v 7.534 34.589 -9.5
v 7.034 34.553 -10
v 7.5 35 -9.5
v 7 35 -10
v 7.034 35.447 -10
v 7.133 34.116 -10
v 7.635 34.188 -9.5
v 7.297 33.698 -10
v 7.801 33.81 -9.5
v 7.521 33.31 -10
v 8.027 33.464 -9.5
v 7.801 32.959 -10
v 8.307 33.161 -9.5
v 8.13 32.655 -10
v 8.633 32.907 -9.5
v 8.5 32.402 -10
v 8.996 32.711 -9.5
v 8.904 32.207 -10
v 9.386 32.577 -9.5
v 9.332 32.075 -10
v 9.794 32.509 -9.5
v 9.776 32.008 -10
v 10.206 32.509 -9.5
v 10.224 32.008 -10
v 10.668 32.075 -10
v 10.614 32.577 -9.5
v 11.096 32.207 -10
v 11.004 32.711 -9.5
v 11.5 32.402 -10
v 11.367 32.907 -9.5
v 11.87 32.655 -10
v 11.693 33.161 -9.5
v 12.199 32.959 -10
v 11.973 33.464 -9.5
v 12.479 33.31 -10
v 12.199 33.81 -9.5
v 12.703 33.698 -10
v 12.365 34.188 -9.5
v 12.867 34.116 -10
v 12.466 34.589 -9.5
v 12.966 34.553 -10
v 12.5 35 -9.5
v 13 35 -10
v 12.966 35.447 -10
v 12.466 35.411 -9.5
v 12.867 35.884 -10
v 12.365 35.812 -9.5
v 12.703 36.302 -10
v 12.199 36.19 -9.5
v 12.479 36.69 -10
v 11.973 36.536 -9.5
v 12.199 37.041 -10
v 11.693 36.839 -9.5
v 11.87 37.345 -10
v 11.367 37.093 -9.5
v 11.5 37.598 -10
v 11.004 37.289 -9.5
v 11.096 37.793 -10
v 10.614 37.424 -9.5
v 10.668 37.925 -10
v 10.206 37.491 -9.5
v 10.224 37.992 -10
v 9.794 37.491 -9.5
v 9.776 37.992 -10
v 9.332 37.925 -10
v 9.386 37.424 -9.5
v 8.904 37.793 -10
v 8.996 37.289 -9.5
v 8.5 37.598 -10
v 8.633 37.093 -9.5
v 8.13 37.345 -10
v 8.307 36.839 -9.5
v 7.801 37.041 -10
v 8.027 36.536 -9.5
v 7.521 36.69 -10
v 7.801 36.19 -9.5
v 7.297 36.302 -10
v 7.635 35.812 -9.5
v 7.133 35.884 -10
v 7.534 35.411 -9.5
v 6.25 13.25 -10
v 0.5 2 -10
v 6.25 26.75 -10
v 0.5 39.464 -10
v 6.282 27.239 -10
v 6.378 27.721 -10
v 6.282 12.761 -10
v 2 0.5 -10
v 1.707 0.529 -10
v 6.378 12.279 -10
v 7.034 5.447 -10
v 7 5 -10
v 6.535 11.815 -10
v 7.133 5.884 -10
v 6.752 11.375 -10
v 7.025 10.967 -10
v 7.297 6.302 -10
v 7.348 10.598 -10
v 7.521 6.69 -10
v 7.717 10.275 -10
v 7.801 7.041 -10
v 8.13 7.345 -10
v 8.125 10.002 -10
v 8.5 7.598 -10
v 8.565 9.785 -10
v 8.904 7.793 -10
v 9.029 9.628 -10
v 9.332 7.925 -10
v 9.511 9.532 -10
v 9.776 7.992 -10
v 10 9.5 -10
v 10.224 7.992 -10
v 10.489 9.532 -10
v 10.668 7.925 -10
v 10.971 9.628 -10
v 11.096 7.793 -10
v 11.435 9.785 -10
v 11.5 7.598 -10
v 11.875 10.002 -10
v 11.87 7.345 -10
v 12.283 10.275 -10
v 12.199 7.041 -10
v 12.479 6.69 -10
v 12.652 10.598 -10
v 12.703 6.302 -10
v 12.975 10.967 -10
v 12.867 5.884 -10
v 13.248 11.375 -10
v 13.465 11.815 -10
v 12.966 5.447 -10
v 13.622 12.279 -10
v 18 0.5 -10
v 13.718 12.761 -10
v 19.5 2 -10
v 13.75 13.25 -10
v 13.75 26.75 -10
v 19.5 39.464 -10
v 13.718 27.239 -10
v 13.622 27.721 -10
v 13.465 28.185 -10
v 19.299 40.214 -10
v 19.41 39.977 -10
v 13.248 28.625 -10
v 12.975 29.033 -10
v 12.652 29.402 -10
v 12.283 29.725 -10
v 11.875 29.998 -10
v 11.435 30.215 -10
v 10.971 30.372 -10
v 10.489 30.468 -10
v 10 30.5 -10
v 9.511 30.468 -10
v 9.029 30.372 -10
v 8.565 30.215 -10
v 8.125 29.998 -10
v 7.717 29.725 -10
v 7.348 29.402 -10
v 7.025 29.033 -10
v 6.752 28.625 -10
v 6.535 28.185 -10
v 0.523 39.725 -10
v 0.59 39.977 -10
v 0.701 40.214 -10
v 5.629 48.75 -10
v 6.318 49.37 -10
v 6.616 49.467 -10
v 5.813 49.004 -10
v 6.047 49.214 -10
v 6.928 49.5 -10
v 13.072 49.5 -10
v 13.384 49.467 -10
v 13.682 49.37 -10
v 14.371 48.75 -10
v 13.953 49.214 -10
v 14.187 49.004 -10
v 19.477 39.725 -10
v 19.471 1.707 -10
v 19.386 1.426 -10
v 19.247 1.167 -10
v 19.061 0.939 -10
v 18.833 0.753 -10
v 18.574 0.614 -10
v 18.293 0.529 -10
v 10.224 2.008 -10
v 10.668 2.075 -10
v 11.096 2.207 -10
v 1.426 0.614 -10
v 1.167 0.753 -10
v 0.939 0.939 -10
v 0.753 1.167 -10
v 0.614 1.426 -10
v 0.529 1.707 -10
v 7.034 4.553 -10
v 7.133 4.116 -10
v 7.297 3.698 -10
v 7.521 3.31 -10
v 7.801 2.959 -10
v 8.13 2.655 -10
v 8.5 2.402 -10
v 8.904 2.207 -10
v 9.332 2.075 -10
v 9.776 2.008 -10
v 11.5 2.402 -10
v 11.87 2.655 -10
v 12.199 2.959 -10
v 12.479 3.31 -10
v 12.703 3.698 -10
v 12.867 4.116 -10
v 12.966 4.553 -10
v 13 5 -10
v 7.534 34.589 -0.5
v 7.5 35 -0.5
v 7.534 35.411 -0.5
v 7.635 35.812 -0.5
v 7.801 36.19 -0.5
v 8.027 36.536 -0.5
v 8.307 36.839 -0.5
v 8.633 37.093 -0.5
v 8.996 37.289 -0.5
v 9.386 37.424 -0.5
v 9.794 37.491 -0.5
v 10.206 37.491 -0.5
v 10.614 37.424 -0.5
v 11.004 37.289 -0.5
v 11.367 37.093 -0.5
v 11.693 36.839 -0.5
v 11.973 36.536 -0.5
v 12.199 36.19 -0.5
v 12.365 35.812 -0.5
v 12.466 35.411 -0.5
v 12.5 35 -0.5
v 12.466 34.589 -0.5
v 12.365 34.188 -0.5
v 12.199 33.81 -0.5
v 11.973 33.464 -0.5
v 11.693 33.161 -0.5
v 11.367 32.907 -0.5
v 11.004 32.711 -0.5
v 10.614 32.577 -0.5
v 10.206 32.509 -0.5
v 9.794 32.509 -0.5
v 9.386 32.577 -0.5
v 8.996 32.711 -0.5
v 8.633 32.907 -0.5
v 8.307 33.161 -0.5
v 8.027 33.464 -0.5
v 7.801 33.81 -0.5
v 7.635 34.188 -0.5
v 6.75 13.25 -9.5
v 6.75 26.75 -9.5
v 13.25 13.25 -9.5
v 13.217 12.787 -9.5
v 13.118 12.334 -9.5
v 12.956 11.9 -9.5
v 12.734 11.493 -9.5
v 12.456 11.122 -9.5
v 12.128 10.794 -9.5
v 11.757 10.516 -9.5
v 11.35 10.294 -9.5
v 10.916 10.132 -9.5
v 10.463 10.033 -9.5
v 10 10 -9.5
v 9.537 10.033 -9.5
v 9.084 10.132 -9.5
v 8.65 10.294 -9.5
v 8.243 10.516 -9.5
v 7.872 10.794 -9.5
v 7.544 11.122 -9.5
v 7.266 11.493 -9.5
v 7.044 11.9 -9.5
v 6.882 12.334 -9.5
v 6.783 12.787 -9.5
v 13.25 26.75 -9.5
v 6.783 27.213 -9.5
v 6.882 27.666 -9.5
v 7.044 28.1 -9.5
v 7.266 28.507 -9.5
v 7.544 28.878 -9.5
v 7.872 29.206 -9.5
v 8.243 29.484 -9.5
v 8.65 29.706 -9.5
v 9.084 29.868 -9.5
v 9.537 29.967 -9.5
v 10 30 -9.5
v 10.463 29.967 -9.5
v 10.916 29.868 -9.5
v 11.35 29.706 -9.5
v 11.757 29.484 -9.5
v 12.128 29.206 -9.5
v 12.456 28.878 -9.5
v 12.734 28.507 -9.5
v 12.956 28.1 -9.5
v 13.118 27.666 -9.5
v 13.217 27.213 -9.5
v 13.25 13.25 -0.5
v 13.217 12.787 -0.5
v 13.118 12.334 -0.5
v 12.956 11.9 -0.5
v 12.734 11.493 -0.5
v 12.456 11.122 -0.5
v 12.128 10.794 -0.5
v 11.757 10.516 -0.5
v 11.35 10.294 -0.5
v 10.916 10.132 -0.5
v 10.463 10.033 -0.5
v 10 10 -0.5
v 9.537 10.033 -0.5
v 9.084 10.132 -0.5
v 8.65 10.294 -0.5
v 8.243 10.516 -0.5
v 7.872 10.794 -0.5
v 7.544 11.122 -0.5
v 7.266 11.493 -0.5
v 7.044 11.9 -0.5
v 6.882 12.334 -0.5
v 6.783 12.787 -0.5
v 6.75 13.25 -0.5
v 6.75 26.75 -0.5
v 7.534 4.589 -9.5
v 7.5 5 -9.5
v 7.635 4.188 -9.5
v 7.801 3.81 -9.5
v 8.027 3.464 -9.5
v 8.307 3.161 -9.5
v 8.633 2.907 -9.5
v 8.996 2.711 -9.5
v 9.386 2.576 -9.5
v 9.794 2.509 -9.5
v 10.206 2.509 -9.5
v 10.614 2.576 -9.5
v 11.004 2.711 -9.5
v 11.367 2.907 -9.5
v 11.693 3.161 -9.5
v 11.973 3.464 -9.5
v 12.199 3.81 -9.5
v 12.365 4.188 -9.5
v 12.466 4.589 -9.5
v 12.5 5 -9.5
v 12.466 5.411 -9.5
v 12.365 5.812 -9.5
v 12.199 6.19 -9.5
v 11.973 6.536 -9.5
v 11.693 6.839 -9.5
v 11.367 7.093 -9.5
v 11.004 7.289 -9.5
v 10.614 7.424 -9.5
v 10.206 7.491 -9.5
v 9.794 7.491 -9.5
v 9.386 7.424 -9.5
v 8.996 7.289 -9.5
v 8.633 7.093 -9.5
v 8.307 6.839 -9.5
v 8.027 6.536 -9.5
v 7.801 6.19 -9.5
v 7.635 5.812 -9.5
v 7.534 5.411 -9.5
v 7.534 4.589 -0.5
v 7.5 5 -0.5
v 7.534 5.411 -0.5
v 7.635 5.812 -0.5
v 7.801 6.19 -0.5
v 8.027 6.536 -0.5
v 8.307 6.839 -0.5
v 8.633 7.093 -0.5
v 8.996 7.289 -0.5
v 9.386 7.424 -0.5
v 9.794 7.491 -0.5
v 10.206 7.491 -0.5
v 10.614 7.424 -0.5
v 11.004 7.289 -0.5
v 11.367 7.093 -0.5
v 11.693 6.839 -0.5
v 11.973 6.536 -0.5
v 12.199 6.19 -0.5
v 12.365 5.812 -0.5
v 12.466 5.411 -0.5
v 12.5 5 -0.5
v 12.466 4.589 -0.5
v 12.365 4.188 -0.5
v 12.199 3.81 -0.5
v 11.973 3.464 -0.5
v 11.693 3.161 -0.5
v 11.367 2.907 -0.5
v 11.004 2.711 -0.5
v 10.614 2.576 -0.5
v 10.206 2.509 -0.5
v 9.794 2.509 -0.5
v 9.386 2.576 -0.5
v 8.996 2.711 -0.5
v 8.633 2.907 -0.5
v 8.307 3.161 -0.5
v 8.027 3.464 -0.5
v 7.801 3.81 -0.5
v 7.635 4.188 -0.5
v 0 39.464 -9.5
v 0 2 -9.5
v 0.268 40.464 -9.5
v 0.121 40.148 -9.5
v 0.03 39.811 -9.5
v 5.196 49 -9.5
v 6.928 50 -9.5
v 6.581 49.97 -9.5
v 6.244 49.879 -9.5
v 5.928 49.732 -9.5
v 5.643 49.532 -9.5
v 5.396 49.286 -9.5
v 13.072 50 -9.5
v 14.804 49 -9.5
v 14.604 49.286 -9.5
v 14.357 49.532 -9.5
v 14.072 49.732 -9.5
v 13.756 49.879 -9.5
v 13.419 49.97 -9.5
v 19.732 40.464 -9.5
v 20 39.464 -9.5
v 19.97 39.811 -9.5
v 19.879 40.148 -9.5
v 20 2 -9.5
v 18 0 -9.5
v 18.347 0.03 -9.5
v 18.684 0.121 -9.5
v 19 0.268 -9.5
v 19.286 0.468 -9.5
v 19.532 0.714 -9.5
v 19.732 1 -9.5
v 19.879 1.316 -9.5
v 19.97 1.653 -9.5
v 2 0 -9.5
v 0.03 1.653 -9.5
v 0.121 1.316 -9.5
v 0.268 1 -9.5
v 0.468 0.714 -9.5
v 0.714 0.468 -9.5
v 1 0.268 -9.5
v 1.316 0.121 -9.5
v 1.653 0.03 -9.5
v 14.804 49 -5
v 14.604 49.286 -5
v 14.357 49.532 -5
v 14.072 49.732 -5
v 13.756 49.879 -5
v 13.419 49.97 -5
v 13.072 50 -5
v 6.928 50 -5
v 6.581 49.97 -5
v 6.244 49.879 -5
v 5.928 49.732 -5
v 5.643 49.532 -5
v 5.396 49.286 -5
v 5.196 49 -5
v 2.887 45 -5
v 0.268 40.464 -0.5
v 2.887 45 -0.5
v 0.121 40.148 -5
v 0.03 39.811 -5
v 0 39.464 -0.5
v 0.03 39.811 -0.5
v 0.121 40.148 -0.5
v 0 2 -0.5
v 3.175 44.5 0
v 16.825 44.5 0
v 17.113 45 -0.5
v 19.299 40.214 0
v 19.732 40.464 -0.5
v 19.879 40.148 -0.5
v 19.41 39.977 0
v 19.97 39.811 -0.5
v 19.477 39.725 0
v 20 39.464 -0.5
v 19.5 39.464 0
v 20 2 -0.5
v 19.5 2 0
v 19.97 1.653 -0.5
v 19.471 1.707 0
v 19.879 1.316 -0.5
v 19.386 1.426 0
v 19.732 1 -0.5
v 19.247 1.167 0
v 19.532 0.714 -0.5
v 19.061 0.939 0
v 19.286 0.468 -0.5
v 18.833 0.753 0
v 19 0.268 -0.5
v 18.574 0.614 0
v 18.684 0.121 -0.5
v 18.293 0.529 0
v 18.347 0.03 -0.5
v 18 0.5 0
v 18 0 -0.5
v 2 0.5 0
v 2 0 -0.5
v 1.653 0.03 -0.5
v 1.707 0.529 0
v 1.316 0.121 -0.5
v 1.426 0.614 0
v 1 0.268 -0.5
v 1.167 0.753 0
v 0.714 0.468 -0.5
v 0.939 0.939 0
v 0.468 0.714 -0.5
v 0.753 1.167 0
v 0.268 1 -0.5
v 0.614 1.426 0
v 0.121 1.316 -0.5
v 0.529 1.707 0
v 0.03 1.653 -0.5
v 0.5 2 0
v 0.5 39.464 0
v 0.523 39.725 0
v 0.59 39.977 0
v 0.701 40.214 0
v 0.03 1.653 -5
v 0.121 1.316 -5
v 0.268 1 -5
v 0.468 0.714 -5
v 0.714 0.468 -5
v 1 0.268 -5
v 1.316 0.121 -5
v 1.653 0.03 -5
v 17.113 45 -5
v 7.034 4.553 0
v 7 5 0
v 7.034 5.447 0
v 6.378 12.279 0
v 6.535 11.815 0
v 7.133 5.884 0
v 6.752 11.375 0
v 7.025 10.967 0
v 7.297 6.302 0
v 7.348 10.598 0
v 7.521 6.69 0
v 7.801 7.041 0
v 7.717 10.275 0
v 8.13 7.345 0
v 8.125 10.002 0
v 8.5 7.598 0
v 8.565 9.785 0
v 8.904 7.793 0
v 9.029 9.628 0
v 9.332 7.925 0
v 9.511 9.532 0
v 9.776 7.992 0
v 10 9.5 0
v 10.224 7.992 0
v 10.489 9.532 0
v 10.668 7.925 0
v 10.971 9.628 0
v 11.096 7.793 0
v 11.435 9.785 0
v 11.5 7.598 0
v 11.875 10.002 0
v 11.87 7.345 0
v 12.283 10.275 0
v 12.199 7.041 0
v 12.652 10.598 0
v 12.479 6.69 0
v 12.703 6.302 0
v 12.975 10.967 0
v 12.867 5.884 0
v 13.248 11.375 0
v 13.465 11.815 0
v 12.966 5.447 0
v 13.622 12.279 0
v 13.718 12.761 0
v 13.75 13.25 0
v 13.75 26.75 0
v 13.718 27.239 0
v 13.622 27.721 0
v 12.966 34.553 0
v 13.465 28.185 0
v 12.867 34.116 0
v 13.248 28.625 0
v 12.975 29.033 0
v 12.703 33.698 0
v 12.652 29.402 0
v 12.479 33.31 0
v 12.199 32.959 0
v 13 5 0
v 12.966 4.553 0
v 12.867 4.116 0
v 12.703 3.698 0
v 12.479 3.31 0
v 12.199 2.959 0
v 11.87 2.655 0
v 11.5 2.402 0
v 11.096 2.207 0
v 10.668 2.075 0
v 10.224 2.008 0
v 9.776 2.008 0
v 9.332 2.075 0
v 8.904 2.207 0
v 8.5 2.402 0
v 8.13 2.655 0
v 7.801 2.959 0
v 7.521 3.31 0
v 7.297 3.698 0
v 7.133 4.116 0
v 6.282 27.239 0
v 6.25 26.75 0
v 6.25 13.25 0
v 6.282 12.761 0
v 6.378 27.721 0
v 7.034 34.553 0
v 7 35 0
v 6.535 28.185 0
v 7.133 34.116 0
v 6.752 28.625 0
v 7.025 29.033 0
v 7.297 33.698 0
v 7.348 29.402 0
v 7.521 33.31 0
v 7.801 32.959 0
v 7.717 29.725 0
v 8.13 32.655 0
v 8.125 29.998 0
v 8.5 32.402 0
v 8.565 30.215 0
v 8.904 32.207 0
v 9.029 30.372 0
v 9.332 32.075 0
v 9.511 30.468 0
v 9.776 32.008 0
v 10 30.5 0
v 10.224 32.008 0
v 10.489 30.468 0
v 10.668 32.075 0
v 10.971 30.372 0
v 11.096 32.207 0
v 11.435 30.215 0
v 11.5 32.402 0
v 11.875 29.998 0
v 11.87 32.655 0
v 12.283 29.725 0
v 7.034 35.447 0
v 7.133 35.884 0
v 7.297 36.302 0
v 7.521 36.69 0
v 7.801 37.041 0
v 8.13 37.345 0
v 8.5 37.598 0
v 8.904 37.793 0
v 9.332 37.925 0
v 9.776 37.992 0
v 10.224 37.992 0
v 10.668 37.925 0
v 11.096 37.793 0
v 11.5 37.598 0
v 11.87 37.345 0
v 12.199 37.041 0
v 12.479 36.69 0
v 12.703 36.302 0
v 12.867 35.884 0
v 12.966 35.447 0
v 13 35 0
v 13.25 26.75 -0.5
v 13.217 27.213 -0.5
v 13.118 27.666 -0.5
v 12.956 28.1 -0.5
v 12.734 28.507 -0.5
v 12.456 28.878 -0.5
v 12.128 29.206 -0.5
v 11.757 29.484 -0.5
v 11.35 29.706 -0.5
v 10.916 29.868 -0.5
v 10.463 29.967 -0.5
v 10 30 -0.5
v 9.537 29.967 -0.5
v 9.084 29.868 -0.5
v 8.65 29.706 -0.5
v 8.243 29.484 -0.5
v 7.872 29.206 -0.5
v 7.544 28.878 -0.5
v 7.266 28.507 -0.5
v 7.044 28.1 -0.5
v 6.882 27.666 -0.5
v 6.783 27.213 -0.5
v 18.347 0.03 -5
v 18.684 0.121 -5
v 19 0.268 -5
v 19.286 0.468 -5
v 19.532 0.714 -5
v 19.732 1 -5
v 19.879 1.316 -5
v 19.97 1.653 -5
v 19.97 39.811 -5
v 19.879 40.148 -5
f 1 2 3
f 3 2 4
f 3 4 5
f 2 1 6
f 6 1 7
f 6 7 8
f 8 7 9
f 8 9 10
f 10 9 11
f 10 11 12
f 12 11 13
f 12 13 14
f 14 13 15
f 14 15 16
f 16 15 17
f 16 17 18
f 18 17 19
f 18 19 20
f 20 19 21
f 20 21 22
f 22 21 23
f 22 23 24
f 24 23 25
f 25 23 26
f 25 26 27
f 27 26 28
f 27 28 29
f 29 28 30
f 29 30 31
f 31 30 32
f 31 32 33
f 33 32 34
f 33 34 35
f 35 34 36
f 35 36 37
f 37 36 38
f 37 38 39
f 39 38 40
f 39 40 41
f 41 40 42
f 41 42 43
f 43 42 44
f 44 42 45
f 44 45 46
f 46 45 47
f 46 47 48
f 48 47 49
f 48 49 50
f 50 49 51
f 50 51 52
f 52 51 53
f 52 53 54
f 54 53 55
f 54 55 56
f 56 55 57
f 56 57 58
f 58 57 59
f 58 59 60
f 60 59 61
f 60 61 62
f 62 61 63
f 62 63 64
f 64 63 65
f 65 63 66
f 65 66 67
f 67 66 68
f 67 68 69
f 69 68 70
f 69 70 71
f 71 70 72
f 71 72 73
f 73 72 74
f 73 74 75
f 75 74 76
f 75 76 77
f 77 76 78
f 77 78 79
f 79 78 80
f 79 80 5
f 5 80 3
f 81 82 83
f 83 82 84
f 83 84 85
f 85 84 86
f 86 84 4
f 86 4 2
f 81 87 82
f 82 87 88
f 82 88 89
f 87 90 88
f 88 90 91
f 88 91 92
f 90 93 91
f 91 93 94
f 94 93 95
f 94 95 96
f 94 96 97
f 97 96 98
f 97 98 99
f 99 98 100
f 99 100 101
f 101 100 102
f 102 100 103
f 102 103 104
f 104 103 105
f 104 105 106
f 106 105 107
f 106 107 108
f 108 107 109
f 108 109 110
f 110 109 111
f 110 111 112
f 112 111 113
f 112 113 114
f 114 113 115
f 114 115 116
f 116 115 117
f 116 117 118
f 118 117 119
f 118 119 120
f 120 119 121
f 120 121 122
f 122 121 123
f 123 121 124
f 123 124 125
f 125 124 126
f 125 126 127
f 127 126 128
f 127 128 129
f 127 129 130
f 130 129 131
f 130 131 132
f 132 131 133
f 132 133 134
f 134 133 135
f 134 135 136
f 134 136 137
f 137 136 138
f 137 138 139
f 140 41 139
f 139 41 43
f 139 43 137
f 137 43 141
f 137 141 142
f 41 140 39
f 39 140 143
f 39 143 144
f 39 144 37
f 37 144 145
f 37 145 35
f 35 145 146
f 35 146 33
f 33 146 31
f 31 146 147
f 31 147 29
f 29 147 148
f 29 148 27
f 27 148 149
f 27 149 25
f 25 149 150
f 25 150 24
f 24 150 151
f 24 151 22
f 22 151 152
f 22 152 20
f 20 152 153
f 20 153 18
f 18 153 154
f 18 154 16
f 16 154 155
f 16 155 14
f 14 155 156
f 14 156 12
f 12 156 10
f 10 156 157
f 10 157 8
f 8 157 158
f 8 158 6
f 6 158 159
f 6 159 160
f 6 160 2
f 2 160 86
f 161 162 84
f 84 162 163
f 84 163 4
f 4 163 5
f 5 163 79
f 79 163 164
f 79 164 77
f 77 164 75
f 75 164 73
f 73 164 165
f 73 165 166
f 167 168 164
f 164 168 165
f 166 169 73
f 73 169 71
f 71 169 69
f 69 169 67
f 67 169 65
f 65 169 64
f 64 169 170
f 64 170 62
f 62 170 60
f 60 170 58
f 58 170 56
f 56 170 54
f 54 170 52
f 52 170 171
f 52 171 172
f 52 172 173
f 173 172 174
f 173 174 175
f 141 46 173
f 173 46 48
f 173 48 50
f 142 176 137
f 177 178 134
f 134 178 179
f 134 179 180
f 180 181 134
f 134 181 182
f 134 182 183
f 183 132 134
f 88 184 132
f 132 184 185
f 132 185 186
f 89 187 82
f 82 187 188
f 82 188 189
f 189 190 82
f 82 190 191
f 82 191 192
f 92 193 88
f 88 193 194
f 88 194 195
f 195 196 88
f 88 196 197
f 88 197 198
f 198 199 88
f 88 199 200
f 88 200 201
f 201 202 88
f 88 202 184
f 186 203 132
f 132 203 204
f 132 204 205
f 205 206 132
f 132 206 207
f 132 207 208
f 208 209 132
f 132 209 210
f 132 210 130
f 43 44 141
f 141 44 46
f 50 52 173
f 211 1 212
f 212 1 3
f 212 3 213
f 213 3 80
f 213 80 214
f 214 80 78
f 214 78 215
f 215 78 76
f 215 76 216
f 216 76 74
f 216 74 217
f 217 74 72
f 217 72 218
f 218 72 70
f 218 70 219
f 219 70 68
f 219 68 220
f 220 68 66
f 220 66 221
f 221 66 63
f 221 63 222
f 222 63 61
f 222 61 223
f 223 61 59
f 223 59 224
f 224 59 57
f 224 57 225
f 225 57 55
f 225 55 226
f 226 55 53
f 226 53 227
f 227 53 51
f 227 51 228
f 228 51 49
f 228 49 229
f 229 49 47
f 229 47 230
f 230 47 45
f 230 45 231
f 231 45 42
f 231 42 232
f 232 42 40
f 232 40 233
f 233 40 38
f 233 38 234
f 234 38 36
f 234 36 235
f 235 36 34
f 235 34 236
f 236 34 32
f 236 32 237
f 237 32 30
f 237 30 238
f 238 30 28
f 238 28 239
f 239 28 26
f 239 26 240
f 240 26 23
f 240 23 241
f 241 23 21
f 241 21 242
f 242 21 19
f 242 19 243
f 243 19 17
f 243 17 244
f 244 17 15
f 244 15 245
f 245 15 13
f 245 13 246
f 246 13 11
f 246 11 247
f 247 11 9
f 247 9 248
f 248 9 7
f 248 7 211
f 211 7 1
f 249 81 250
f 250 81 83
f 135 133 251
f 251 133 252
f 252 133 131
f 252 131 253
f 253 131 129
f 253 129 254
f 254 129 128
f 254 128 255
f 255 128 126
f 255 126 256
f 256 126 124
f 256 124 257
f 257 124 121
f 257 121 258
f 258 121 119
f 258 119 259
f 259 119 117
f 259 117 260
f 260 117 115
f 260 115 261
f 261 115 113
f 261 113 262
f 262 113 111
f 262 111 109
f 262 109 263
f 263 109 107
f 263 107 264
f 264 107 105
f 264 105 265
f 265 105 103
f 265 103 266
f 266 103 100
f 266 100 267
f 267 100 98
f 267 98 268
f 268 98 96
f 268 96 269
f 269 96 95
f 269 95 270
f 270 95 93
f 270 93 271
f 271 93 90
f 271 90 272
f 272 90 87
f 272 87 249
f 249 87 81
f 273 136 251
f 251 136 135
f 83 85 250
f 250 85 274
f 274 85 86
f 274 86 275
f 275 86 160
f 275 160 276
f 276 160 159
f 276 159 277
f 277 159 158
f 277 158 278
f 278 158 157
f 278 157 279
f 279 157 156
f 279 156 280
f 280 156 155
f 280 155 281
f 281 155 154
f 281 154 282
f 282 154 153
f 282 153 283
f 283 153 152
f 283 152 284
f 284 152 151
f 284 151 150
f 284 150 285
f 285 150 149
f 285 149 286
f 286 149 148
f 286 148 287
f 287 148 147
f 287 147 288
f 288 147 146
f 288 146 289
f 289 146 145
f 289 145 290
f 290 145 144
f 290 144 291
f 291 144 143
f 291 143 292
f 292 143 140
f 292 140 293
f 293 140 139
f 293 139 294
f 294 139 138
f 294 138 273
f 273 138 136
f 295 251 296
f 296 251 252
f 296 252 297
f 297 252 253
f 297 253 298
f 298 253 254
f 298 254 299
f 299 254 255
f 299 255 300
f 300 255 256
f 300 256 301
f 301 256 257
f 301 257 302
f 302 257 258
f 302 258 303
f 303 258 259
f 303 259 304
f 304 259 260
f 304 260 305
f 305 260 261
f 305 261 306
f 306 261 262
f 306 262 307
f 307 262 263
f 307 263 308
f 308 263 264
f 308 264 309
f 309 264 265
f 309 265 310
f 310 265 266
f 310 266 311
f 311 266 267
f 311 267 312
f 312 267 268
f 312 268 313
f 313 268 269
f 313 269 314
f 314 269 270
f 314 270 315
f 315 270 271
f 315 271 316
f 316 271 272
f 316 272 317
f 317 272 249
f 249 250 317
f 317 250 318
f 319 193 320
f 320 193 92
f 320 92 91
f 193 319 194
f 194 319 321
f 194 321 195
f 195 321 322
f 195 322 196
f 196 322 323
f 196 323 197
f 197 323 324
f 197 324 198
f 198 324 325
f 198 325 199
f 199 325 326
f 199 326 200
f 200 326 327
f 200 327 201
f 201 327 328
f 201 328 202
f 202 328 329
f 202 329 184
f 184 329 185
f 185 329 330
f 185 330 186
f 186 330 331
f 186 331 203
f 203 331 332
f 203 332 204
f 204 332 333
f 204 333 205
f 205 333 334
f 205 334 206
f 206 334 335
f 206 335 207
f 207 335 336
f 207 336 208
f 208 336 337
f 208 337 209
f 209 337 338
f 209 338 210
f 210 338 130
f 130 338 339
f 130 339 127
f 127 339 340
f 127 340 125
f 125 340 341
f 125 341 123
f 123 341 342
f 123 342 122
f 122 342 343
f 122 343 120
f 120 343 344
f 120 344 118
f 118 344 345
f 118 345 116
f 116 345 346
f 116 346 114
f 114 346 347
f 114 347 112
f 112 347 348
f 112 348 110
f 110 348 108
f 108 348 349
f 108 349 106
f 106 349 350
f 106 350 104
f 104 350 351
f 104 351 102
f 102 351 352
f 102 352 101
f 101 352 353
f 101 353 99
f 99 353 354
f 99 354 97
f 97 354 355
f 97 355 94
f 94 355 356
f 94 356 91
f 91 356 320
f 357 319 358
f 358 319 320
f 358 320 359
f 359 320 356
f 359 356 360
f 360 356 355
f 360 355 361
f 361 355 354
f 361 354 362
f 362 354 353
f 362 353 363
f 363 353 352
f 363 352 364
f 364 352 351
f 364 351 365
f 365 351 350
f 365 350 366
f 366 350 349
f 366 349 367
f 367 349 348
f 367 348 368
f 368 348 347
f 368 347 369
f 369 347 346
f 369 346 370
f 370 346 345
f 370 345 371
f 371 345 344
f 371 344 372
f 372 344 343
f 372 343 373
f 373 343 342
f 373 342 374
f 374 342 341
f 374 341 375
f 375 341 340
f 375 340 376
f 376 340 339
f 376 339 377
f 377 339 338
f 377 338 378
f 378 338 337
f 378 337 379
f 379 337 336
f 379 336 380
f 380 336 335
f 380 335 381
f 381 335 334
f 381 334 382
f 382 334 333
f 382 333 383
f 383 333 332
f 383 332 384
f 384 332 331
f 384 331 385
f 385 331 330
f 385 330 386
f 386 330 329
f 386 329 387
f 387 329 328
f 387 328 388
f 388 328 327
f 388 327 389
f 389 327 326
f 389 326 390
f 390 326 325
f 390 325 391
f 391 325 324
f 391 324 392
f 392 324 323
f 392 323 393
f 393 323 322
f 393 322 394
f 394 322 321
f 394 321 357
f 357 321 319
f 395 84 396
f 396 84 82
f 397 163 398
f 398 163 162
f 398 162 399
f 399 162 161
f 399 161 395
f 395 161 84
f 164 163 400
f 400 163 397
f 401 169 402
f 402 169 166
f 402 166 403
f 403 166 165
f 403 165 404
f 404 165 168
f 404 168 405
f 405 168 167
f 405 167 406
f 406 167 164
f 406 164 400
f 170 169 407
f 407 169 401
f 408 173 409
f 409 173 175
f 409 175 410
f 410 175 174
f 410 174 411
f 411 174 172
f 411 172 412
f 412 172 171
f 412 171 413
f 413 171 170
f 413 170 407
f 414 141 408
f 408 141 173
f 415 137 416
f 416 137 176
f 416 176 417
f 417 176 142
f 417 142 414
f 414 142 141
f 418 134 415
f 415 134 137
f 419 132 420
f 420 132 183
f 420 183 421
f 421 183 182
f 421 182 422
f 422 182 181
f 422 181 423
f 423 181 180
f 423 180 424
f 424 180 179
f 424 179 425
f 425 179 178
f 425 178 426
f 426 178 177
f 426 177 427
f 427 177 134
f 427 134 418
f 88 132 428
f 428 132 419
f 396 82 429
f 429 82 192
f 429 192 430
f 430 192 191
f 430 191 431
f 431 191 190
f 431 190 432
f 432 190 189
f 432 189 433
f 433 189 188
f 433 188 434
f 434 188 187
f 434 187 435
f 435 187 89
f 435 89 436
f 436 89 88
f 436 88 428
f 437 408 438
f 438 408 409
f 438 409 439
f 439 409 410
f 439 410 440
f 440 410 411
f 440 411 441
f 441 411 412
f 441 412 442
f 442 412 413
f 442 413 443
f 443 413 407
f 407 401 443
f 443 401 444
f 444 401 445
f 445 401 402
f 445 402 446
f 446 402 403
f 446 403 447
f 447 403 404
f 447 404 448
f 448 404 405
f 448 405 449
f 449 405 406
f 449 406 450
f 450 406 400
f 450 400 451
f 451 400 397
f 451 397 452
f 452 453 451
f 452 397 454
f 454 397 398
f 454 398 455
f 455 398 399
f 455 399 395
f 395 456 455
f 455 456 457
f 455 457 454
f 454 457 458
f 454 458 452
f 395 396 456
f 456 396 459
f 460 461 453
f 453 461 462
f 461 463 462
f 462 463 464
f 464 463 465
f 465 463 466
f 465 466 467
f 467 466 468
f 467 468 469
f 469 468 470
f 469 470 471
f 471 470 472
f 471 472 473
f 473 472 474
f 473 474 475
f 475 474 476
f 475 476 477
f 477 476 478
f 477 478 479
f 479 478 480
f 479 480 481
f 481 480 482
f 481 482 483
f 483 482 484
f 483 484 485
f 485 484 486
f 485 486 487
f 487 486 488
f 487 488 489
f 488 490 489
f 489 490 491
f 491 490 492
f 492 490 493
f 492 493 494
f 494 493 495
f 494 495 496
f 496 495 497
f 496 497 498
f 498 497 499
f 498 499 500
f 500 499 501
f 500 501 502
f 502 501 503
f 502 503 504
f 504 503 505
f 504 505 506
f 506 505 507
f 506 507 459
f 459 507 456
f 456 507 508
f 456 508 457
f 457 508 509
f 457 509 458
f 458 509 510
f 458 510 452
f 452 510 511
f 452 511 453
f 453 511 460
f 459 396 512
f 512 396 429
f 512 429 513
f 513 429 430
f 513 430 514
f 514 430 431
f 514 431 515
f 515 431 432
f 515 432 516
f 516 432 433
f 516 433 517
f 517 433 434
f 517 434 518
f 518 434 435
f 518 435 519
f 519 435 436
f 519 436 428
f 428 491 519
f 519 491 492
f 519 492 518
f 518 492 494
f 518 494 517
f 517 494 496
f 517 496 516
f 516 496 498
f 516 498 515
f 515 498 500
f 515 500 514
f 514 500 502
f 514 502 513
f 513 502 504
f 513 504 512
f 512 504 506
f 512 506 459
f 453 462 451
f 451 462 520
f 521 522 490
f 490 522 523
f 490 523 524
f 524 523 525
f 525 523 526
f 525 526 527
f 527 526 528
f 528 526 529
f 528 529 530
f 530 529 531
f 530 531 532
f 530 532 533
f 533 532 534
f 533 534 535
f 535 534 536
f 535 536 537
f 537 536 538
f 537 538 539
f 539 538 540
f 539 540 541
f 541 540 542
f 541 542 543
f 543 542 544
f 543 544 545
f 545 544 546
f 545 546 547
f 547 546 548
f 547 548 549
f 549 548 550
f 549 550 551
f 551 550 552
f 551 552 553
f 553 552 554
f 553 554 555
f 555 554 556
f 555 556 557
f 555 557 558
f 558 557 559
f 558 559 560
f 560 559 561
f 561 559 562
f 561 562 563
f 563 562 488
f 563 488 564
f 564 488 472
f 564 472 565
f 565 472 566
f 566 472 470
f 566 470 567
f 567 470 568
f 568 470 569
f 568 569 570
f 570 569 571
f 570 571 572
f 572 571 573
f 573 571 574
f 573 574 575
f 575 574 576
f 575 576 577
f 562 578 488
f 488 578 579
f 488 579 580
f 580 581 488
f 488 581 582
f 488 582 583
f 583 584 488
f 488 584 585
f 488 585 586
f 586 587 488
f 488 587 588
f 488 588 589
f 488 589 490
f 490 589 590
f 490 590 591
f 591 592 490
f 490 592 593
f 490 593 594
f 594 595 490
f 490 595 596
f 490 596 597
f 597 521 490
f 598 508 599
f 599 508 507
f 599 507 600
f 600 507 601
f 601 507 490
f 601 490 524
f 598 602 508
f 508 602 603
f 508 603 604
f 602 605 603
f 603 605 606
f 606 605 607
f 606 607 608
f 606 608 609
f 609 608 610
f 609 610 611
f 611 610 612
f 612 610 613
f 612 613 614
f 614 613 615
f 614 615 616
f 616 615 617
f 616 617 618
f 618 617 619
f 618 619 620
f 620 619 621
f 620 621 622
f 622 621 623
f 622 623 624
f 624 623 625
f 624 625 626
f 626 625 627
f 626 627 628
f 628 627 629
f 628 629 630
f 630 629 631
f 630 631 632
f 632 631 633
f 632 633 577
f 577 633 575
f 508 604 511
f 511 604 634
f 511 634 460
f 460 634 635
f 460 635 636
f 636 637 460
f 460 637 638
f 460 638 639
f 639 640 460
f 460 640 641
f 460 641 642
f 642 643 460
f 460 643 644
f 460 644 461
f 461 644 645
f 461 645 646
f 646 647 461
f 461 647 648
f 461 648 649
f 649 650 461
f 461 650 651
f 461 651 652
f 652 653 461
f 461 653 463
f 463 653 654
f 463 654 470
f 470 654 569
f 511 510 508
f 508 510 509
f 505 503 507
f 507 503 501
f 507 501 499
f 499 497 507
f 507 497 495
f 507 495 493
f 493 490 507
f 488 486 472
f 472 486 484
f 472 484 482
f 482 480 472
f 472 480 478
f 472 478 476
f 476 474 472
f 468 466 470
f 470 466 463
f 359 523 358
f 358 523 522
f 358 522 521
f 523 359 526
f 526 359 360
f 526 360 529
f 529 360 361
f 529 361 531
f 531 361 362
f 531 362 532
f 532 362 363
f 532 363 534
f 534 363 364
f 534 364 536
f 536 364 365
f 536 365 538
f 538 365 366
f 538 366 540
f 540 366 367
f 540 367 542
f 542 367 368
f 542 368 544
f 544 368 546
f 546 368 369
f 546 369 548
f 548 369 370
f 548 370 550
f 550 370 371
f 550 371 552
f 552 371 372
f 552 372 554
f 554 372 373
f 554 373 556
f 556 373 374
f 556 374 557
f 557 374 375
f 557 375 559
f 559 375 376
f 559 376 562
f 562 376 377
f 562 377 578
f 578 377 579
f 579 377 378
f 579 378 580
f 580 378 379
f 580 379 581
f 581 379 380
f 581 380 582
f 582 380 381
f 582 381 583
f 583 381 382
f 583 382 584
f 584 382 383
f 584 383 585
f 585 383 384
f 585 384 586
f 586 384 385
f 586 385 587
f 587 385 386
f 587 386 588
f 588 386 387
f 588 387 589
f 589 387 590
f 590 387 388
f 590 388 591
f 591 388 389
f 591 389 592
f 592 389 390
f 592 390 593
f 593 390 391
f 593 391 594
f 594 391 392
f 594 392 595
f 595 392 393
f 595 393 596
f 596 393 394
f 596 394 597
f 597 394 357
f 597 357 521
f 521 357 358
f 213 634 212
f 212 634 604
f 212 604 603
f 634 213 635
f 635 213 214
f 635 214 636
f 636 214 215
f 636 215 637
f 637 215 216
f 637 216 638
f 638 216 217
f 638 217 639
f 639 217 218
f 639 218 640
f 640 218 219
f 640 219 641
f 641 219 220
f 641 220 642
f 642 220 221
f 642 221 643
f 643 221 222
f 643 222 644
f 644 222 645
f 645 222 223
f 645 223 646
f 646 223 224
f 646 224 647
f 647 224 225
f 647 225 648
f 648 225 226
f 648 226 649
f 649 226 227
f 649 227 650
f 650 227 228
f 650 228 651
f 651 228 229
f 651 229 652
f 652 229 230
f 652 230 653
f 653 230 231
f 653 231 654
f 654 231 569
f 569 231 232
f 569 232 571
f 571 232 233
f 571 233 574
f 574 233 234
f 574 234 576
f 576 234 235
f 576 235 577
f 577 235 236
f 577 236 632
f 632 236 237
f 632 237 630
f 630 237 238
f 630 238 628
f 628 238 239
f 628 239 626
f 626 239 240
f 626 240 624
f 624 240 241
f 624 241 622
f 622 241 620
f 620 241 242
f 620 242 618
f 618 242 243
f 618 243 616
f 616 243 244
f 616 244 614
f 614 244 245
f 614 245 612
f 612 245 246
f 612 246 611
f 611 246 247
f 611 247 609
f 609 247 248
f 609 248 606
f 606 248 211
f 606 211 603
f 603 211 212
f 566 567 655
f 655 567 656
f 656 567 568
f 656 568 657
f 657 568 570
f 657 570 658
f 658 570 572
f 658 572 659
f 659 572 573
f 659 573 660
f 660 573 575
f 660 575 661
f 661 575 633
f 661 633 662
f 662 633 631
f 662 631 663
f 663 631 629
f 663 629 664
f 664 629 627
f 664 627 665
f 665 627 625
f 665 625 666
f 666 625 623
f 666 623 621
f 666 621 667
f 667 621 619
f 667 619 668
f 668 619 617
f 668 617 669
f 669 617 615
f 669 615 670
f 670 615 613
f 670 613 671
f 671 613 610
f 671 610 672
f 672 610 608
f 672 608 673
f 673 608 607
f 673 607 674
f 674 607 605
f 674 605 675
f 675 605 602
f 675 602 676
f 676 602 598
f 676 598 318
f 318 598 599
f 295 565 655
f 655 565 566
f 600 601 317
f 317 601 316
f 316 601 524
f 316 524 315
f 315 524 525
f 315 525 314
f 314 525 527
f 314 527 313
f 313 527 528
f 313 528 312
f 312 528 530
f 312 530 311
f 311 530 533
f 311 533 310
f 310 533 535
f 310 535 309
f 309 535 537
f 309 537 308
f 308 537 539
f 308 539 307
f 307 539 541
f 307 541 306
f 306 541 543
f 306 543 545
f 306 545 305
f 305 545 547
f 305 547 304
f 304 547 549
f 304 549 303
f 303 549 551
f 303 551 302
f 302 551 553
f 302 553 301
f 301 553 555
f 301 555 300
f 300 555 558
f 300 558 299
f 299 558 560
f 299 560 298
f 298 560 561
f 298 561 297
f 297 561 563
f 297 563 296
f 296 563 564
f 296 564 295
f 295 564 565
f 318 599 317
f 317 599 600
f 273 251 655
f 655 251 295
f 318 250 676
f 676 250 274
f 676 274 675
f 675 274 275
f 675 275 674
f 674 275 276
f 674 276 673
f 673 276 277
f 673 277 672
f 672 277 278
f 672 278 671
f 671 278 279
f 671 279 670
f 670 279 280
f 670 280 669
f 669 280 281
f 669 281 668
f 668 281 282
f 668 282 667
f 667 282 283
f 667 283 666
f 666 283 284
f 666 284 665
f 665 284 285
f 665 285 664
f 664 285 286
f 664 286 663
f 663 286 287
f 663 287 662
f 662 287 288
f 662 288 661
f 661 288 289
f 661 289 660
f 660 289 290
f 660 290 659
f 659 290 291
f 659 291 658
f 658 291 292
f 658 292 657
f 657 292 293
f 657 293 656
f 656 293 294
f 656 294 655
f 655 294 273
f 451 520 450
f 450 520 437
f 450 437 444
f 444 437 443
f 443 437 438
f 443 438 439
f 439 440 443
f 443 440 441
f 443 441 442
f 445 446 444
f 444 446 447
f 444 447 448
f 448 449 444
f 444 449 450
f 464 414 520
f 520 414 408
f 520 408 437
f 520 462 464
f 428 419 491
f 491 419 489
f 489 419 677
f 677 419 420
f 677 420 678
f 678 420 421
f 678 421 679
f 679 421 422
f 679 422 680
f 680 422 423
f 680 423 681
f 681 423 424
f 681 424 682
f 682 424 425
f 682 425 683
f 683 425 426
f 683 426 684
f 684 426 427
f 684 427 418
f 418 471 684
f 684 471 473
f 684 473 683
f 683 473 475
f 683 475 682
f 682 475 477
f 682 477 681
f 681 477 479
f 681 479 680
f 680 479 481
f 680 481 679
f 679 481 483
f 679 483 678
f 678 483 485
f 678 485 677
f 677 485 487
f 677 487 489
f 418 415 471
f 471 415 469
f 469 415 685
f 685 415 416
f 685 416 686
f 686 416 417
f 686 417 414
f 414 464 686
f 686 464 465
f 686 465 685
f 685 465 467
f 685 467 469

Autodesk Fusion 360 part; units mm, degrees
sketch "Skizze1" plane through (0, 0, 0) normal (0, 0, 1) x (1, 0, 0)
  line L0 (2, 0) -> (18, 0)
  line L1 (20, 2) -> (20, 39.4641)
  line L2 (13.0718, 50) -> (6.9282, 50)
  line L3 (0, 39.4641) -> (0, 2)
  line L4 (10, 50) -> (10, 0) construction
  circle A0 centre (10, 5) radius 2.5
  circle A1 centre (10, 35) radius 2.5
  line L5 (13.25, 26.75) -> (13.25, 13.25)
  line L6 (6.75, 13.25) -> (6.75, 26.75)
  arc A2 (13.25, 26.75) -> (6.75, 26.75) centre (10, 26.75) ccw
  arc A3 (6.75, 13.25) -> (13.25, 13.25) centre (10, 13.25) ccw
  line L7 (0, 40) -> (20, 40) construction
  line L8 (0.2679, 40.4641) -> (5.1962, 49)
  line L9 (19.7321, 40.4641) -> (14.8038, 49)
  line L10 (0, 45) -> (20, 45) construction
  line L11 (0, 26.75) -> (20, 26.75) construction
  line L12 (0, 13.25) -> (20, 13.25) construction
  line L13 (2.8868, 45) -> (17.1132, 45)
  arc A4 (0, 2) -> (2, 0) centre (2, 2) ccw
  arc A5 (18, 0) -> (20, 2) centre (18, 2) ccw
  arc A6 (0.2679, 40.4641) -> (0, 39.4641) centre (2, 39.4641) ccw
  arc A7 (20, 39.4641) -> (19.7321, 40.4641) centre (18, 39.4641) ccw
  arc A8 (14.8038, 49) -> (13.0718, 50) centre (13.0718, 48) ccw
  arc A9 (6.9282, 50) -> (5.1962, 49) centre (6.9282, 48) ccw
  point P0 (20, 0)
  point P1 (20, 40)
  dimension "breite" = 20
  dimension "loch_durchmesser" = 5
  dimension "d4" = 20
  dimension "d6" = 5
  dimension "d7" = 5
  dimension "d8" = 5
  dimension "d9" = 8.25
  dimension "d10" = 8.25
  dimension "kopf_lenge" = 10
  dimension "d13" = 10
  dimension "d14" = 60
  dimension "d15" = 60
  dimension "kopf_winkel" = 60
  dimension "d18" = 5
  dimension "d19" = 6.5
  dimension "d21" = 5
  dimension "d22" = 50
  dimension "d23" = 10
  dimension "d24" = 5
  dimension "parameter_1" = 2.5
  dimension "abrundung" = 2
  dimension "d27" = 2
  dimension "d28" = 2
  dimension "d29" = 2
  dimension "d30" = 2
  dimension "d31" = 2
  dimension "d32" = 2
extrude "Extrusion1" add sketch "Skizze1" against normal blind 10
extrude "Extrusion2" cut sketch "Skizze1" against normal blind 5 contours L2 L8 L9 L13 A8 A9
chamfer "Fase1" distance 0.5 angle 45 34 edges at (10, 30, 0) (13.25, 20, 0) (10, 10, 0) (6.75, 20, 0) (7.6692, 35.904, 0) (7.6692, 5.904, 0) (0, 20.7321, 0) (0.5858, 0.5858, 0) (10, 0, 0) (19.4142, 0.5858, 0) (20, 20.7321, 0) (19.9319, 39.9817, 0) (18.4226, 42.7321, 0) (1.5774, 42.7321, 0) (0.0681, 39.9817, 0) (10, 45, 0) (0, 20.7321, -10) (0.0681, 39.9817, -10) (2.7321, 44.7321, -10) (5.9282, 49.7321, -10) (10, 50, -10) (14.0718, 49.7321, -10) (17.2679, 44.7321, -10) (19.9319, 39.9817, -10) (20, 20.7321, -10) (19.4142, 0.5858, -10) (10, 0, -10) (0.5858, 0.5858, -10) (7.6692, 4.096, -10) (6.75, 20, -10) (10, 10, -10) (13.25, 20, -10) (10, 30, -10) (7.6692, 34.096, -10)
equation "breite = 20 mm"
equation "höhe = 50 mm"
equation "loch_durchmesser = 5 mm"
equation "d4 = breite"
equation "d6 = loch_durchmesser"
equation "d7 = loch_durchmesser"
equation "d8 = parameter_1 + loch_durchmesser / 2"
equation "d9 = ( öffnung_breite / 2 ) + ( loch_durchmesser / 2 ) + parameter_1"
equation "d10 = ( öffnung_breite / 2 ) + ( loch_durchmesser / 2 ) + parameter_1"
equation "kopf_lenge = 10 mm"
equation "d13 = kopf_lenge"
equation "d14 = kopf_winkel"
equation "d15 = kopf_winkel"
equation "kopf_winkel = 60 deg"
equation "d18 = kopf_lenge / 2"
equation "d19 = öffnung_breite"
equation "öffnung_breite = 6.50 mm"
equation "d21 = kopf_lenge / 2"
equation "d22 = höhe"
equation "d23 = breite / 2"
equation "d24 = parameter_1 + loch_durchmesser / 2"
equation "parameter_1 = 2.5 mm"
equation "abrundung = 2 mm"
equation "d27 = abrundung"
equation "d28 = abrundung"
equation "d29 = abrundung"
equation "d30 = abrundung"
equation "d31 = abrundung"
equation "d32 = abrundung"
